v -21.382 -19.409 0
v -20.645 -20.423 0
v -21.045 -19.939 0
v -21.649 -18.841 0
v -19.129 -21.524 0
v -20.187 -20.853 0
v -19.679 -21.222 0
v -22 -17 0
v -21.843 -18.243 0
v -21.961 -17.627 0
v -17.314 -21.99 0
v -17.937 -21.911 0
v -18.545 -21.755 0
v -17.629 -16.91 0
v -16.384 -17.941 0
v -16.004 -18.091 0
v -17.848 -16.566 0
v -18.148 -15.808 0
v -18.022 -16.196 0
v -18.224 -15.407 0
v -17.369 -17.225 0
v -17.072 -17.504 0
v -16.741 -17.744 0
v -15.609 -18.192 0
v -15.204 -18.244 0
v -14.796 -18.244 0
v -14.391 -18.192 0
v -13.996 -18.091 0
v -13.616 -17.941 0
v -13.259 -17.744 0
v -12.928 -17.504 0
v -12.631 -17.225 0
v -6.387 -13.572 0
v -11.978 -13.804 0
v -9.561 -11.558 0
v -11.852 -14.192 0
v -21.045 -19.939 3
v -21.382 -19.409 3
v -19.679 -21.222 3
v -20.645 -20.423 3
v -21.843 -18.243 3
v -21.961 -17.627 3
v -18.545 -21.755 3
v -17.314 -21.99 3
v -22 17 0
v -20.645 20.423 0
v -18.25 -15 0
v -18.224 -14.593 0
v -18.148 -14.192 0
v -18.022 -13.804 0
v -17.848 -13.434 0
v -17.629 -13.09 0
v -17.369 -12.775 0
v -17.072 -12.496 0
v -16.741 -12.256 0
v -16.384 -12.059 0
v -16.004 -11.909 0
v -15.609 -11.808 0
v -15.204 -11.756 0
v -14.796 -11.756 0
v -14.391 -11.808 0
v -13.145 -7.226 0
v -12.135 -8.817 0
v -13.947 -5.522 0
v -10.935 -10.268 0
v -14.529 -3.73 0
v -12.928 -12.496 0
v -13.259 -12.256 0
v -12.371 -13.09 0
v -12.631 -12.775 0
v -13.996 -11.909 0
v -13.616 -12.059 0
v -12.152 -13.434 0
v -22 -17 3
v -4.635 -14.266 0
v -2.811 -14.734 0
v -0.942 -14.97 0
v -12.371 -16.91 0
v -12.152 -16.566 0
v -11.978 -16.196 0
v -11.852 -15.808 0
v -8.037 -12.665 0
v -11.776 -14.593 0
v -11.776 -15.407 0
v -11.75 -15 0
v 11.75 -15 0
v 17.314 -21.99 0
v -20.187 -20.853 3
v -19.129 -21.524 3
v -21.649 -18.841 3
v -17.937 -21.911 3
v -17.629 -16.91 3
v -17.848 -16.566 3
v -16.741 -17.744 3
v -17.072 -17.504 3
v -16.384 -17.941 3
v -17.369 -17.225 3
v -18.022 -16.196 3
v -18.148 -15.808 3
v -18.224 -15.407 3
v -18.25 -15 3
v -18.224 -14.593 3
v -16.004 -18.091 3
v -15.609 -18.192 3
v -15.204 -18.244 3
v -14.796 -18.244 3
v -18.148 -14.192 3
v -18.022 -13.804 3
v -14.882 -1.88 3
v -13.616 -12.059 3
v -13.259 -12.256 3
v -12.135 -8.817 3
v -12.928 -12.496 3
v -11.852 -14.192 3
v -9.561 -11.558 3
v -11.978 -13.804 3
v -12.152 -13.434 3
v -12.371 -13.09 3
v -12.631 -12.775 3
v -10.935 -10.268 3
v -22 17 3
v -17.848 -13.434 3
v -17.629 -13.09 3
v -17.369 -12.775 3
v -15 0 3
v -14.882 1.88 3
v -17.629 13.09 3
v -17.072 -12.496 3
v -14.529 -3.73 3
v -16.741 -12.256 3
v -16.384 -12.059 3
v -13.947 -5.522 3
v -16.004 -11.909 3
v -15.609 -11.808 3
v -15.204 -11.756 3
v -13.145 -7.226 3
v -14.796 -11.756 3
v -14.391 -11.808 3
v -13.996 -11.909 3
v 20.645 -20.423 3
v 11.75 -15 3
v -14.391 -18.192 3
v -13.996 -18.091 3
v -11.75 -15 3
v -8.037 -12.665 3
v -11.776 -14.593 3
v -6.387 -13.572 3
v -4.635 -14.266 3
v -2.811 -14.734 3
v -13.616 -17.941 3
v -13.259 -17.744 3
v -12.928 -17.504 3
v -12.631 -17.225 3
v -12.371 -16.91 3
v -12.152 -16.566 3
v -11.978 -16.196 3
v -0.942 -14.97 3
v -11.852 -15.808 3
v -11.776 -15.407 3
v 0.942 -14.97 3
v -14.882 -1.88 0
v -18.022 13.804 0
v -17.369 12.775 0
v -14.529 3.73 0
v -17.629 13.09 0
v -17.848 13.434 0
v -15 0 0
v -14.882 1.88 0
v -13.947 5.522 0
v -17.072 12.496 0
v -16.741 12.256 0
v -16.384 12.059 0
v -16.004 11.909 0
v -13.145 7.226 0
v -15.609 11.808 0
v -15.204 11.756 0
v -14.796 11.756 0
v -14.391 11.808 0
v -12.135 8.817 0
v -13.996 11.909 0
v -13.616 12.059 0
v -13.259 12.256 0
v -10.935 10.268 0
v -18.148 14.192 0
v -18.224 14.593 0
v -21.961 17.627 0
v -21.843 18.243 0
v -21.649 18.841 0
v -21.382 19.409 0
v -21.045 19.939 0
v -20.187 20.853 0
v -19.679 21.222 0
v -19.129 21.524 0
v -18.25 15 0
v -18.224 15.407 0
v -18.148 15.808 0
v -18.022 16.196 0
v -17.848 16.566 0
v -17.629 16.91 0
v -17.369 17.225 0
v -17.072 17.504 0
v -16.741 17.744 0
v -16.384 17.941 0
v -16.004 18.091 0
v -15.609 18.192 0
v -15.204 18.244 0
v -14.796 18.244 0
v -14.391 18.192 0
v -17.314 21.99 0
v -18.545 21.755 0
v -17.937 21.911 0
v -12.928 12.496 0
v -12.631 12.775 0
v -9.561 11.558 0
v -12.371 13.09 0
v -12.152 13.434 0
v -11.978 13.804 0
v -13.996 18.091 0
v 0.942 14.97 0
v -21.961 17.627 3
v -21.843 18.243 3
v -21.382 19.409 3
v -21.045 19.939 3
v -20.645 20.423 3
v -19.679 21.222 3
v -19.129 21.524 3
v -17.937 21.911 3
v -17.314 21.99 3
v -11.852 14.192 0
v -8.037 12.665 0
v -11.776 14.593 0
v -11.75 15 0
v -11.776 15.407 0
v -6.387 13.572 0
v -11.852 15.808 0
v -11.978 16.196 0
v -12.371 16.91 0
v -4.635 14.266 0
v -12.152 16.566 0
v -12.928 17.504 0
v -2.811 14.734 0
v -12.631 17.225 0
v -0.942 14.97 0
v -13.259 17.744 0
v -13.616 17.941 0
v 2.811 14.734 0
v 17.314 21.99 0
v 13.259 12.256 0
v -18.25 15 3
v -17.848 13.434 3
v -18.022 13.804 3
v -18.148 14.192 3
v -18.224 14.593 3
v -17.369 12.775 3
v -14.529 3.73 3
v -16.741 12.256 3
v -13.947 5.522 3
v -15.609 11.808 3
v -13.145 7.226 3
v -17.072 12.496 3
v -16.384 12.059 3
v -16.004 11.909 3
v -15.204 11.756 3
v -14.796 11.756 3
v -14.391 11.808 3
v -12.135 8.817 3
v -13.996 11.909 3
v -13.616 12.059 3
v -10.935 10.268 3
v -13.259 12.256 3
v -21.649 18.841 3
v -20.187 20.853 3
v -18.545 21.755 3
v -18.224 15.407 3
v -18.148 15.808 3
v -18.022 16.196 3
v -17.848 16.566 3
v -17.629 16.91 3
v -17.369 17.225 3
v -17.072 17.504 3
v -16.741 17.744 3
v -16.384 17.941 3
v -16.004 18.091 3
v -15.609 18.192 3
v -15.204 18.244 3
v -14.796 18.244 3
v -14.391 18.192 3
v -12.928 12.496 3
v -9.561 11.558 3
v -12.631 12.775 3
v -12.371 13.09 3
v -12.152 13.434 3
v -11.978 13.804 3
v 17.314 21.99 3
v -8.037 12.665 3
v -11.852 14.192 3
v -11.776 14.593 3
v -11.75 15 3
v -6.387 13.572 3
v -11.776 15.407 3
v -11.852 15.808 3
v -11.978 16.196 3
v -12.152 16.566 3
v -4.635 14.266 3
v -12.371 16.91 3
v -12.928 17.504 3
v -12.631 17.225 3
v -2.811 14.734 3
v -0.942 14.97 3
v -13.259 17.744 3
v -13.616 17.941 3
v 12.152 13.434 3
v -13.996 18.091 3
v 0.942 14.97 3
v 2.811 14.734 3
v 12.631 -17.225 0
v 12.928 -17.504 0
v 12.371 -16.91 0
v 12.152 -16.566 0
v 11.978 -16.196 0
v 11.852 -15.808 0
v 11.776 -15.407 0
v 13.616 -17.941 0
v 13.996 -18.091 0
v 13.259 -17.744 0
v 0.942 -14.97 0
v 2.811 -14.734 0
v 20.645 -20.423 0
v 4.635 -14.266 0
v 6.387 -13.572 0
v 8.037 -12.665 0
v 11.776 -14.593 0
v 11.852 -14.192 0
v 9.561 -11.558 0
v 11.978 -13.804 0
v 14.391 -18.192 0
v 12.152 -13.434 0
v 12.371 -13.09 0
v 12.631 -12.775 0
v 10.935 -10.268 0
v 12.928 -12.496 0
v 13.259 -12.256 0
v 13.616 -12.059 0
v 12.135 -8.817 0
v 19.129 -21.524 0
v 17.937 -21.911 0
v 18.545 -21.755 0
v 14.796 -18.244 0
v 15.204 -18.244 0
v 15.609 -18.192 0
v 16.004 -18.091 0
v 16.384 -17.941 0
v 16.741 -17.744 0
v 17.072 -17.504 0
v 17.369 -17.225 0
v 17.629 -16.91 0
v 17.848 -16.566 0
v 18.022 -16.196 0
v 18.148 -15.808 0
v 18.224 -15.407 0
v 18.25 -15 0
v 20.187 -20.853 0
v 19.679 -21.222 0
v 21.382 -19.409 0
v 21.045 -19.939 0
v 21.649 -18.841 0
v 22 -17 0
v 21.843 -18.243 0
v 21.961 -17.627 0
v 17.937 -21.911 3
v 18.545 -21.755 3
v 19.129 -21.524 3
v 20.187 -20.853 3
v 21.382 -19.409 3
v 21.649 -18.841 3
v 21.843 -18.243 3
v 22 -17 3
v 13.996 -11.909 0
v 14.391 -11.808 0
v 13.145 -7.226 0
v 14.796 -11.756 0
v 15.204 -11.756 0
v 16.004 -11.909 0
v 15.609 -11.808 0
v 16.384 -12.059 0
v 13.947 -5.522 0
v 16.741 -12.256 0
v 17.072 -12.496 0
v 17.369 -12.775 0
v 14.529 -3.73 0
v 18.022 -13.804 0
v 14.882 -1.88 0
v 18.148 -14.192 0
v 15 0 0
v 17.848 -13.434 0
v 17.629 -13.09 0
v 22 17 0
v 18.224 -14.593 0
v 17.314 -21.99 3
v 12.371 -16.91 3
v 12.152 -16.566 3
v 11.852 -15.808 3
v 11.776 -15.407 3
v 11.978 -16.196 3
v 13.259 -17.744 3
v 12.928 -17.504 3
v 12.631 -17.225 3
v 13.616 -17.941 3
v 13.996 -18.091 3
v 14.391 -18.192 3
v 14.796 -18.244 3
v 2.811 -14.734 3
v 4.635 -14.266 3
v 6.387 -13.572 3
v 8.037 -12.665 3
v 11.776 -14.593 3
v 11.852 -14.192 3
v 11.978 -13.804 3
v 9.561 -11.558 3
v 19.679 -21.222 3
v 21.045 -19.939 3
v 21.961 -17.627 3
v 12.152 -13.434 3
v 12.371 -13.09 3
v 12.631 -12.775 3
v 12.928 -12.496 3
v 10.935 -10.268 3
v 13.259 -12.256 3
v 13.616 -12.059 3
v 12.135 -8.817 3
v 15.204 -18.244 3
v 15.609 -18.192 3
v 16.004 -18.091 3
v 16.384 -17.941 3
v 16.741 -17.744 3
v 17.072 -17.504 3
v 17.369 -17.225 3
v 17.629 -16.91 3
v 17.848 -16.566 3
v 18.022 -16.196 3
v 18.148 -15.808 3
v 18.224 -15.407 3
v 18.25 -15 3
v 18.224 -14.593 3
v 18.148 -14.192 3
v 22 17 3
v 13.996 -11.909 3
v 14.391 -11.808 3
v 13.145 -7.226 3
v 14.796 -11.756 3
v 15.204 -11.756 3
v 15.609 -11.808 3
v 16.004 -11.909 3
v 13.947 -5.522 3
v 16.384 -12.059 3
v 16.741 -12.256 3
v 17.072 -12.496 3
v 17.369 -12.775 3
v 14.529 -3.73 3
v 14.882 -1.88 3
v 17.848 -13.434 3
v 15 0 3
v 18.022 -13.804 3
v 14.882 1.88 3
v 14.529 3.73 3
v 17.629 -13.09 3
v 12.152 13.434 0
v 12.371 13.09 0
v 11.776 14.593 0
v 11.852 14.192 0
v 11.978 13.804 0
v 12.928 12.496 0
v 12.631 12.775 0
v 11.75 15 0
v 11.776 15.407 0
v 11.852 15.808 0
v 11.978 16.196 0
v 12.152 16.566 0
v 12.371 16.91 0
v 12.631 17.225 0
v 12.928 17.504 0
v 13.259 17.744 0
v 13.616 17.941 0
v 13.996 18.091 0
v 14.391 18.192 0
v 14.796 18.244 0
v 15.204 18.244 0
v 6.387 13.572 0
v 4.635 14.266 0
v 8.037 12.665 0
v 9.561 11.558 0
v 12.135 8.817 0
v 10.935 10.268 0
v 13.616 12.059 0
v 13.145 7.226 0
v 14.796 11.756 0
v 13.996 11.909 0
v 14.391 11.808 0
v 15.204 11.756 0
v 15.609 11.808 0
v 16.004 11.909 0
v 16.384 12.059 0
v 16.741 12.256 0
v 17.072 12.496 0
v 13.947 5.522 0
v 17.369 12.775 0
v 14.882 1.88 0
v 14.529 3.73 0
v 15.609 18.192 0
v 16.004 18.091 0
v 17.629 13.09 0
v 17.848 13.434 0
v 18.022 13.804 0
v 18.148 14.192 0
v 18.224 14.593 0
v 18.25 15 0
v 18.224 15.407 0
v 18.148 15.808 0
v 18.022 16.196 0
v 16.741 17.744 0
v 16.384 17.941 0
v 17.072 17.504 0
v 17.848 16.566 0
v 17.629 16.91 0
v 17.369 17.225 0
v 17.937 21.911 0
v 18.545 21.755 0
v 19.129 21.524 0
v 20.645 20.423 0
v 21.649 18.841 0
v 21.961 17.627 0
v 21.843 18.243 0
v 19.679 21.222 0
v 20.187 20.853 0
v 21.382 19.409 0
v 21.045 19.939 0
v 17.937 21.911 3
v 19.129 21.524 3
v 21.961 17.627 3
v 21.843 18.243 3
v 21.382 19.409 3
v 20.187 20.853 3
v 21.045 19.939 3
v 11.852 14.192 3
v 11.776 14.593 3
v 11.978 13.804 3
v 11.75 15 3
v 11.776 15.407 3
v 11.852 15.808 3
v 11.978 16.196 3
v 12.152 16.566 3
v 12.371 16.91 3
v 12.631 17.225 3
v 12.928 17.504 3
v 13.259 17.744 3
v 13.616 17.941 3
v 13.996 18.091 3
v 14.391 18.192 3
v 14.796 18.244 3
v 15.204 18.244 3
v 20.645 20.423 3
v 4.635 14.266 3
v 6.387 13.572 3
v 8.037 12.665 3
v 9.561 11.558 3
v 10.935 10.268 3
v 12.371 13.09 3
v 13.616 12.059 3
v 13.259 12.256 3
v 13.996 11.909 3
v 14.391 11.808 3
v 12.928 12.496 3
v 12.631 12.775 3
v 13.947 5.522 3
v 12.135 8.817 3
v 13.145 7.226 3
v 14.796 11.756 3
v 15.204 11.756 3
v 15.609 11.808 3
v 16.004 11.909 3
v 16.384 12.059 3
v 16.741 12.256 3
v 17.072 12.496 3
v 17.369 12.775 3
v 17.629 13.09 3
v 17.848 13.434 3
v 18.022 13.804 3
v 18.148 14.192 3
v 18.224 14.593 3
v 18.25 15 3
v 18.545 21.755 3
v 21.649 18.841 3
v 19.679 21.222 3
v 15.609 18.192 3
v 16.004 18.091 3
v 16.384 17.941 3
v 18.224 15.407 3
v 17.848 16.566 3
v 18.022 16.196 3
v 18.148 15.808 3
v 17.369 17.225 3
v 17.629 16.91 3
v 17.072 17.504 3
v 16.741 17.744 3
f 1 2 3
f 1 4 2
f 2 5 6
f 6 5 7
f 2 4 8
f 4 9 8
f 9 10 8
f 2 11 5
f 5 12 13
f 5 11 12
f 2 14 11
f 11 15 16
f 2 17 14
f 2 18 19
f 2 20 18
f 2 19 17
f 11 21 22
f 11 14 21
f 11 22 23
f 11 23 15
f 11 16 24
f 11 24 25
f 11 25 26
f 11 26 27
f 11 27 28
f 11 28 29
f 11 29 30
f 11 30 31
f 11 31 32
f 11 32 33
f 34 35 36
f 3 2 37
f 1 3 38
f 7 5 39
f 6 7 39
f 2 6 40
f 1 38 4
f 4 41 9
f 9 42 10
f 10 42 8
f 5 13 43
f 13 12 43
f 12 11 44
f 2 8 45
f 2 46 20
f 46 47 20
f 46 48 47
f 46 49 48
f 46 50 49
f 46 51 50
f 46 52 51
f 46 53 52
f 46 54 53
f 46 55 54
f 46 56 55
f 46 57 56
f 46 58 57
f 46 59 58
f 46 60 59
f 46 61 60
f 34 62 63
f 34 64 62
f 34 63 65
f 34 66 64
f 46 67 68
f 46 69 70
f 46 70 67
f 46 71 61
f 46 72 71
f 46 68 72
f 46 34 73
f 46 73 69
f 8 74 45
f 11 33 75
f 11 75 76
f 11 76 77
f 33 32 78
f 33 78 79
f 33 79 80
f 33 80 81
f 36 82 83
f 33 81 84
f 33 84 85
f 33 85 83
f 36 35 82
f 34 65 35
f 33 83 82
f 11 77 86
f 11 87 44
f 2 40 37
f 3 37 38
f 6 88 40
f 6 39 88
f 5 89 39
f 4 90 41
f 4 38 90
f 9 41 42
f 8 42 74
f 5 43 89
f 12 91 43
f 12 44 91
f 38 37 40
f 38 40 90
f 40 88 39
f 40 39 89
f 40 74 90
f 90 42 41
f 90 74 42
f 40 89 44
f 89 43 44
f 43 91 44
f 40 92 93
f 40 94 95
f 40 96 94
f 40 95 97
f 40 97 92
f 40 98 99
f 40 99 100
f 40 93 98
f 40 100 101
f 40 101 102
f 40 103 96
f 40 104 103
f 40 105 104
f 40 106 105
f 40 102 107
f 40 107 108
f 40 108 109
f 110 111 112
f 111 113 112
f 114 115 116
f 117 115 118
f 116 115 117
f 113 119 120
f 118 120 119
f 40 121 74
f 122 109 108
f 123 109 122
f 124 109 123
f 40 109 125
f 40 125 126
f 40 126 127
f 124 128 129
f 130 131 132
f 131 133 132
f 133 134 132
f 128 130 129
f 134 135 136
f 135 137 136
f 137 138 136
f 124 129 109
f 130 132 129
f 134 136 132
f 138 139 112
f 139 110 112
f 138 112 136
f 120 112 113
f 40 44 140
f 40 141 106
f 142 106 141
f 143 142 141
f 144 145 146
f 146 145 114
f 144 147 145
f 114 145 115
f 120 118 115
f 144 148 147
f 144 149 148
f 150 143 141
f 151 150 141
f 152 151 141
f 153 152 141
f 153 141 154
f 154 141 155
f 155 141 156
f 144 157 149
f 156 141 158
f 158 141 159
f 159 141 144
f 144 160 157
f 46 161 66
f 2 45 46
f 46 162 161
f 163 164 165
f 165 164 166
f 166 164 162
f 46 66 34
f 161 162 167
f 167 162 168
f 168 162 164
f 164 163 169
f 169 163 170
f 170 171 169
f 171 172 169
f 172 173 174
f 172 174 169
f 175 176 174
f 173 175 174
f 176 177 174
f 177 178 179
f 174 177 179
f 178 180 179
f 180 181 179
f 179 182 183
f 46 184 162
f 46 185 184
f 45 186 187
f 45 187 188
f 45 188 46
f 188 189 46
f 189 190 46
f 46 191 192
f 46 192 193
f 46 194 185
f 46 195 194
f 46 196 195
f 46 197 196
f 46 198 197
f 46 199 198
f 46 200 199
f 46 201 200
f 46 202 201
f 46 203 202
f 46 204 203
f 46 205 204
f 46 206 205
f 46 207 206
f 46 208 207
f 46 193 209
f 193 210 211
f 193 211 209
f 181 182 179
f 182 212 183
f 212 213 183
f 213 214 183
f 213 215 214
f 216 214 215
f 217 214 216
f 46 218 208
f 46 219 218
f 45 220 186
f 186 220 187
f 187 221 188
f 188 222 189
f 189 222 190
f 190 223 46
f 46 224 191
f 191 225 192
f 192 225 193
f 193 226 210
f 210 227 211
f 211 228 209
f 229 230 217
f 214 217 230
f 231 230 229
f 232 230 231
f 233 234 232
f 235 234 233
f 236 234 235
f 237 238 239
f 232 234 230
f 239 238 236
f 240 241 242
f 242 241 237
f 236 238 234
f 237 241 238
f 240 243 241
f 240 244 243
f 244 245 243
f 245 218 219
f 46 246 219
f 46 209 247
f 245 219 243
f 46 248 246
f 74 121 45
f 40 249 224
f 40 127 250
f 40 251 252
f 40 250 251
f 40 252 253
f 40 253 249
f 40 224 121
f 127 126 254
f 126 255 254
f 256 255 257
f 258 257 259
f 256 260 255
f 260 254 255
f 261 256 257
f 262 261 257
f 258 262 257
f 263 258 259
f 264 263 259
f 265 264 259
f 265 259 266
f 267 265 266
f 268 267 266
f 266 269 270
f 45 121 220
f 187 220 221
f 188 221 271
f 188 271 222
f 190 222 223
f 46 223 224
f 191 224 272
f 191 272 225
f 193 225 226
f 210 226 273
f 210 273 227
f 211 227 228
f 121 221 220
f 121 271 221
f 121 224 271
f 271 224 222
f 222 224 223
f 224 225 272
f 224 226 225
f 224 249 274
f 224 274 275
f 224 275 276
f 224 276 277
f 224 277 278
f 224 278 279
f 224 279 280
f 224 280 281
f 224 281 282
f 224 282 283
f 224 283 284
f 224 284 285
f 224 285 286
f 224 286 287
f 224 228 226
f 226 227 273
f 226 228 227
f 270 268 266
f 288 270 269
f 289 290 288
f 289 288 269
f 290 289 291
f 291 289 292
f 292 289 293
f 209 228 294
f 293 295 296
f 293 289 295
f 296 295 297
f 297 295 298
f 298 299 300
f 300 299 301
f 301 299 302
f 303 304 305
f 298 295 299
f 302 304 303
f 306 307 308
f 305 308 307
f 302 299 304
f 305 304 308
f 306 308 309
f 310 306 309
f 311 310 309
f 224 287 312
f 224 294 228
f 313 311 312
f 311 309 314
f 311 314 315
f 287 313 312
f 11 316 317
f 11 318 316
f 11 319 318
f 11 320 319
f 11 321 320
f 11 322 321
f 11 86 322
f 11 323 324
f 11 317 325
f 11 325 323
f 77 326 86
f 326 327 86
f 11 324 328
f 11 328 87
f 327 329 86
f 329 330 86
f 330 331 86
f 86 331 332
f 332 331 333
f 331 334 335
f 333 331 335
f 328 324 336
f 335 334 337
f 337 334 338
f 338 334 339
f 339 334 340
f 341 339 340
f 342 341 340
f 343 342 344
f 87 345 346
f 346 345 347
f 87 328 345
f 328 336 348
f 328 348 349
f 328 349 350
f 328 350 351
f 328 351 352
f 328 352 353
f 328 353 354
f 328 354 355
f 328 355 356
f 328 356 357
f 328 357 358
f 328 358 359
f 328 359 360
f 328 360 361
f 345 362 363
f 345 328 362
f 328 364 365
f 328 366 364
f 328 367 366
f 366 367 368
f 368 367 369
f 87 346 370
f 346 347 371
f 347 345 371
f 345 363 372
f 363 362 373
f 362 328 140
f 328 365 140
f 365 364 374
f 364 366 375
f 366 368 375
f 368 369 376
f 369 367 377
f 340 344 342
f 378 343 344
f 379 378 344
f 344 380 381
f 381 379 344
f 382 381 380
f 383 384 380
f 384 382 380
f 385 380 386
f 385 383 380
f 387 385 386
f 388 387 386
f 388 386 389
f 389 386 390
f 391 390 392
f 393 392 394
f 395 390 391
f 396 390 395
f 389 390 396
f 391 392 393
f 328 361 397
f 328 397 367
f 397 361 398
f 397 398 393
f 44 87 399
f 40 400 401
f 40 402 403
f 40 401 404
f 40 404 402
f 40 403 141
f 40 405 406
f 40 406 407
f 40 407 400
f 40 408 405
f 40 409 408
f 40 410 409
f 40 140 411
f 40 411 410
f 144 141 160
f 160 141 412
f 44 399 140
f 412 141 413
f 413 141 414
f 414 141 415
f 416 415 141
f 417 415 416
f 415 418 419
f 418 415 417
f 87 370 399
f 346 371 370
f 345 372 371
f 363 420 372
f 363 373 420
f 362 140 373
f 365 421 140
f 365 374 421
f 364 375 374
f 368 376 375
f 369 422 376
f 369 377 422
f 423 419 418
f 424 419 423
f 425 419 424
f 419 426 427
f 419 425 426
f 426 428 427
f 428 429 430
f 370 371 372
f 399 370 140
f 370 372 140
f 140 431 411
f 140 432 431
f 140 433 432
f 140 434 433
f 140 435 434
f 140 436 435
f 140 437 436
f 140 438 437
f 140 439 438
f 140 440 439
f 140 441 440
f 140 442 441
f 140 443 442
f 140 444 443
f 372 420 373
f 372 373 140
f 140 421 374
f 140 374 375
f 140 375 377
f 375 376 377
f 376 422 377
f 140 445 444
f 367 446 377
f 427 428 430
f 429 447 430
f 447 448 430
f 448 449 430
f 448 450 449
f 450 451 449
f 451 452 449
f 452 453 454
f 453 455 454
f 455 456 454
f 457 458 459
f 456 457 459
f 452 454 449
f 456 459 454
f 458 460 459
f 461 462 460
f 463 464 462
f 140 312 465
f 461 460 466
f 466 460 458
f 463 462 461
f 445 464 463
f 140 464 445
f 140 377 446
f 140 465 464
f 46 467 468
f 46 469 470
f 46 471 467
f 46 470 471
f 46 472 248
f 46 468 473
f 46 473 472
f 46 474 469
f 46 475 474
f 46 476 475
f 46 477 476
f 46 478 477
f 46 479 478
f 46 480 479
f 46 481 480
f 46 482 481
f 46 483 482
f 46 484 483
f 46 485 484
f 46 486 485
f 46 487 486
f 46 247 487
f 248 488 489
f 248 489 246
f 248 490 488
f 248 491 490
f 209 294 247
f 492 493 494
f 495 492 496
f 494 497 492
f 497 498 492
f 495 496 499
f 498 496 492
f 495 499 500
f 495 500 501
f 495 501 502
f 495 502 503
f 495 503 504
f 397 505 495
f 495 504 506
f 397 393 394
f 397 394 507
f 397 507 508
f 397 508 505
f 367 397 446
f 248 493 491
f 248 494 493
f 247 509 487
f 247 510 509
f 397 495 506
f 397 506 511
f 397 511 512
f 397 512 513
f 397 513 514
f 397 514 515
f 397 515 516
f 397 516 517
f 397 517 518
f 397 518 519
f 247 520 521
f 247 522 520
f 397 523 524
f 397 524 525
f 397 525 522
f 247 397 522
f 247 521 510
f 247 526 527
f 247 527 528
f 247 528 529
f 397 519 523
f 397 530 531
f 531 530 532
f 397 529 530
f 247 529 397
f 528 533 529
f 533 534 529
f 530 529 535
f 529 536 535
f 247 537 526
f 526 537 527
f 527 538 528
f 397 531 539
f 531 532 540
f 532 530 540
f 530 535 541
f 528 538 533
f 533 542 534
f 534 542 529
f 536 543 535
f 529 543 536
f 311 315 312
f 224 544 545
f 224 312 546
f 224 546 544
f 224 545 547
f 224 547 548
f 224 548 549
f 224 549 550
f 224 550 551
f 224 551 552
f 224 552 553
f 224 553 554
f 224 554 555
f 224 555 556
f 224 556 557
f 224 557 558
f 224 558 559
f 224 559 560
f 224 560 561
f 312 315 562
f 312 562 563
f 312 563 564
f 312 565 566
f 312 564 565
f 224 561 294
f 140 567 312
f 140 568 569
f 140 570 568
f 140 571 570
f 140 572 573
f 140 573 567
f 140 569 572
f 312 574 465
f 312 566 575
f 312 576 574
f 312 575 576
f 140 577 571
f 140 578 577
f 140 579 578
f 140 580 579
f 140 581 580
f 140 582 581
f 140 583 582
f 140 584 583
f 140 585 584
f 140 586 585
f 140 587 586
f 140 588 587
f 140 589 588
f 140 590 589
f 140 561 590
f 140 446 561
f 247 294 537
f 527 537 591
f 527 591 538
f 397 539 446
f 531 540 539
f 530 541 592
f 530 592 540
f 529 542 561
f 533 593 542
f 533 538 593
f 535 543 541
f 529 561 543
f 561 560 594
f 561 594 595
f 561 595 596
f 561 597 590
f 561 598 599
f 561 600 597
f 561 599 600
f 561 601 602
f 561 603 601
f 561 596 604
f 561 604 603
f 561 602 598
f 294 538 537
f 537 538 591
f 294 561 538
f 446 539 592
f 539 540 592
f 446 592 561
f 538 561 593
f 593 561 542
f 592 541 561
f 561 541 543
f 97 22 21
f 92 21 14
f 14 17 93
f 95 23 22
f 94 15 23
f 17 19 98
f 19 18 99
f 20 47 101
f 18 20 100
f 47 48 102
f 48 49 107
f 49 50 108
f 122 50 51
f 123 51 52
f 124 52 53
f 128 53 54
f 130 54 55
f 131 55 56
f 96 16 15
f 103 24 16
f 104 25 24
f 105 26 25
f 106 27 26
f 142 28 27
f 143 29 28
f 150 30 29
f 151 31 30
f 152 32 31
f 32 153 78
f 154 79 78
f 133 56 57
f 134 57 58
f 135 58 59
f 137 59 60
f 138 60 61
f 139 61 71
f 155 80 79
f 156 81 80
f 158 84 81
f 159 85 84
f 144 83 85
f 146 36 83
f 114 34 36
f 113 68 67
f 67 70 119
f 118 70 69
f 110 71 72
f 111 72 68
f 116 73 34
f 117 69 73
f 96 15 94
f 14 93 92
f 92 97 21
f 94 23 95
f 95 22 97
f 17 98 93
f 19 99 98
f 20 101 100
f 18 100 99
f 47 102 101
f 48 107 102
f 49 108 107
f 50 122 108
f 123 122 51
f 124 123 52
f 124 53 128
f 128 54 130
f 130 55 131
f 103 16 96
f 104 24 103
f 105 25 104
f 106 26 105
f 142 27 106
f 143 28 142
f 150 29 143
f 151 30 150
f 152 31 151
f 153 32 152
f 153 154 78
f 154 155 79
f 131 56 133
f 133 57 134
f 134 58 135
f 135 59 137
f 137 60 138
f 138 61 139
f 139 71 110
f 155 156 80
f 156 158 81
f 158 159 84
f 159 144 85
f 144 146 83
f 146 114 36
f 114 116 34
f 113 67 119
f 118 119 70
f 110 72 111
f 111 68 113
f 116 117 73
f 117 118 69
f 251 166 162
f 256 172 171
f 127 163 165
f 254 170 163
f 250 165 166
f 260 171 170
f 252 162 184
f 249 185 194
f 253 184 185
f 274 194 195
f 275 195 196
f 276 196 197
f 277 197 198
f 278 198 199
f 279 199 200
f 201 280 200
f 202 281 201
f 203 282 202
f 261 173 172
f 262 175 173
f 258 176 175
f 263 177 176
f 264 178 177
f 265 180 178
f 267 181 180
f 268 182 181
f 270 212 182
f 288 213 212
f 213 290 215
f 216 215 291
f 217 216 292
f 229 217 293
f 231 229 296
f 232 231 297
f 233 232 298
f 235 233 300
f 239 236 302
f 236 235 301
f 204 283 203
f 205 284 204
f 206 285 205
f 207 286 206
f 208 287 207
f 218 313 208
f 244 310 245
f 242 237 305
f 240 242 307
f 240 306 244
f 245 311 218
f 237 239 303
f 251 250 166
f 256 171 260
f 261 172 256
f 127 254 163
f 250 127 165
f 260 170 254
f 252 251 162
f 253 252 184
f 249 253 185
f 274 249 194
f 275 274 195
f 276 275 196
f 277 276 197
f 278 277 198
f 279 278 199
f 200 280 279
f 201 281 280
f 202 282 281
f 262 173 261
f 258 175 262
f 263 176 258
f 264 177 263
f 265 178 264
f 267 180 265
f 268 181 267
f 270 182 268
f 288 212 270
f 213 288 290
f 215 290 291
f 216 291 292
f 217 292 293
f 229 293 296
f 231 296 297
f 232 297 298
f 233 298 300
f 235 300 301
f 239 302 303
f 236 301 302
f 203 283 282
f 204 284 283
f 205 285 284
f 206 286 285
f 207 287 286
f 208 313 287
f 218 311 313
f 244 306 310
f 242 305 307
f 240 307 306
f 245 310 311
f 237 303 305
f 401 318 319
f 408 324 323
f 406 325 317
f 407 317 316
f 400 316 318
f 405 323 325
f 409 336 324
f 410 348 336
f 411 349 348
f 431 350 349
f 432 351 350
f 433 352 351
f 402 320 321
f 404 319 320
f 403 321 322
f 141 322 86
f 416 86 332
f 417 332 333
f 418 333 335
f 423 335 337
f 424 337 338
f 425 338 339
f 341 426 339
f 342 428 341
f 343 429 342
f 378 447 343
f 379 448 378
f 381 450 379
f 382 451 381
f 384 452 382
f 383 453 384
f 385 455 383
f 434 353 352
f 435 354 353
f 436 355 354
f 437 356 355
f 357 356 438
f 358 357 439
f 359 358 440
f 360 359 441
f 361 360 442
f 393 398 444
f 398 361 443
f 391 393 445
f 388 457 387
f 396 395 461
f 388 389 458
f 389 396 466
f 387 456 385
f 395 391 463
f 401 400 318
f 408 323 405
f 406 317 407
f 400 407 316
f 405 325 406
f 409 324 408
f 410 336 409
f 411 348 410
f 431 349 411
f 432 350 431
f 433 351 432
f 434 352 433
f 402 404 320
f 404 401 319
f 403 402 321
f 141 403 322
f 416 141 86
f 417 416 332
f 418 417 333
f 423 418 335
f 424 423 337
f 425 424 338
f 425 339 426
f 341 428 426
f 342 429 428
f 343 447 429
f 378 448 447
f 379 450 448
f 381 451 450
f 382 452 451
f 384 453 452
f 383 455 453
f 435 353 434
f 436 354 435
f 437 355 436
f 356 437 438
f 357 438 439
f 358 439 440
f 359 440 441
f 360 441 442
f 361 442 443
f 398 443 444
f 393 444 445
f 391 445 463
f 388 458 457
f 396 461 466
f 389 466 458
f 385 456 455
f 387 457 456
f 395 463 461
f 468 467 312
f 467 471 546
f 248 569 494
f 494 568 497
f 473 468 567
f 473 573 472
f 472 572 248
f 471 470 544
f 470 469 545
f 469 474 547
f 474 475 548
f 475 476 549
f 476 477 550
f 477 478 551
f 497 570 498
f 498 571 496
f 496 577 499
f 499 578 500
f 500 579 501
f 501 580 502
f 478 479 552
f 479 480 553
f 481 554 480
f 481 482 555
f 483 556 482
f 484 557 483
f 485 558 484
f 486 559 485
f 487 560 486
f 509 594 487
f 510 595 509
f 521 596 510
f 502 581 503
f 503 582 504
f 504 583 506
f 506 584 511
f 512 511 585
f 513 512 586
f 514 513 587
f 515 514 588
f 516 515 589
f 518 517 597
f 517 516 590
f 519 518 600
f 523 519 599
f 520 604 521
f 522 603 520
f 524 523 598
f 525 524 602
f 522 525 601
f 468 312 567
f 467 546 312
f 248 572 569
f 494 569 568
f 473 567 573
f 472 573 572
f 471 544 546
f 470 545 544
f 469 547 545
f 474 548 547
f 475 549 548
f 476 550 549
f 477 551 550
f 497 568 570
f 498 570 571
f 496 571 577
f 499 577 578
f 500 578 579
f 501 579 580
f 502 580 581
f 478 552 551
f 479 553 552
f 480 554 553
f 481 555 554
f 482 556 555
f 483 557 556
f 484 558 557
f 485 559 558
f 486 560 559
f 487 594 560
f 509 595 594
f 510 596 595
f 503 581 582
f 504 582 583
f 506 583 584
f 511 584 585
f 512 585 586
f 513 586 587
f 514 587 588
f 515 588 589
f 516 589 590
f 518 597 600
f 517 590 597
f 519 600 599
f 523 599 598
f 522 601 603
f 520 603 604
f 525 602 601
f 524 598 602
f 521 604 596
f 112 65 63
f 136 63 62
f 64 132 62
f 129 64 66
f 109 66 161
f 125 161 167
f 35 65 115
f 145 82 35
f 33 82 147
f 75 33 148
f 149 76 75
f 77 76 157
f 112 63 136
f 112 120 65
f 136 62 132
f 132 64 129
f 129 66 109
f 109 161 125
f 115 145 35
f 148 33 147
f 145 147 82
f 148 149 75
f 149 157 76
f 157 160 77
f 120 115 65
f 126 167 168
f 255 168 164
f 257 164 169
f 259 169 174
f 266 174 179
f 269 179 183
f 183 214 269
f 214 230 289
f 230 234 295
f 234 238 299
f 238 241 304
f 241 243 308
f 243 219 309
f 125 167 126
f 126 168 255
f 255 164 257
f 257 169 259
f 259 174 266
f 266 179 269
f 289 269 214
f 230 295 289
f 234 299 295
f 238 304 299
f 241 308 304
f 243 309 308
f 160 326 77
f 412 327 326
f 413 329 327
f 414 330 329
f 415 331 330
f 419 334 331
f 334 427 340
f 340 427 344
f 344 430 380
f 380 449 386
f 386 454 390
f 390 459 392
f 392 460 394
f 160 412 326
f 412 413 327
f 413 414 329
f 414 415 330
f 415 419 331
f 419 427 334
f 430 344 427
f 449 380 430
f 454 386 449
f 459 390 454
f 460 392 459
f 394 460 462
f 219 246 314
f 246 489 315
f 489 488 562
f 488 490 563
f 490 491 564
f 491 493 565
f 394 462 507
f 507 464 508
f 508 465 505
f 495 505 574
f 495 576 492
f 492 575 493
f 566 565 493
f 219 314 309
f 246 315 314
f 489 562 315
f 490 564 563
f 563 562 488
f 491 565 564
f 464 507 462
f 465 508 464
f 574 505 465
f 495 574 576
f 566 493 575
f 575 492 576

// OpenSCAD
$fn = 50;

difference() {
	union() {
		hull() {
			translate(v = [-17.0, 17.0, 0]) {
				cylinder(h = 3, r = 5);
			}
			translate(v = [17.0, 17.0, 0]) {
				cylinder(h = 3, r = 5);
			}
			translate(v = [-17.0, -17.0, 0]) {
				cylinder(h = 3, r = 5);
			}
			translate(v = [17.0, -17.0, 0]) {
				cylinder(h = 3, r = 5);
			}
		}
	}
	union() {
		translate(v = [-15.0, -15.0, -100.0]) {
			cylinder(h = 200, r = 3.25);
		}
		translate(v = [-15.0, 15.0, -100.0]) {
			cylinder(h = 200, r = 3.25);
		}
		translate(v = [15.0, -15.0, -100.0]) {
			cylinder(h = 200, r = 3.25);
		}
		translate(v = [15.0, 15.0, -100.0]) {
			cylinder(h = 200, r = 3.25);
		}
		translate(v = [-15.0, -15.0, -100.0]) {
			cylinder(h = 200, r = 1.8);
		}
		translate(v = [-15.0, 15.0, -100.0]) {
			cylinder(h = 200, r = 1.8);
		}
		translate(v = [15.0, -15.0, -100.0]) {
			cylinder(h = 200, r = 1.8);
		}
		translate(v = [15.0, 15.0, -100.0]) {
			cylinder(h = 200, r = 1.8);
		}
		cylinder(h = 3, r = 15.0);
	}
}
